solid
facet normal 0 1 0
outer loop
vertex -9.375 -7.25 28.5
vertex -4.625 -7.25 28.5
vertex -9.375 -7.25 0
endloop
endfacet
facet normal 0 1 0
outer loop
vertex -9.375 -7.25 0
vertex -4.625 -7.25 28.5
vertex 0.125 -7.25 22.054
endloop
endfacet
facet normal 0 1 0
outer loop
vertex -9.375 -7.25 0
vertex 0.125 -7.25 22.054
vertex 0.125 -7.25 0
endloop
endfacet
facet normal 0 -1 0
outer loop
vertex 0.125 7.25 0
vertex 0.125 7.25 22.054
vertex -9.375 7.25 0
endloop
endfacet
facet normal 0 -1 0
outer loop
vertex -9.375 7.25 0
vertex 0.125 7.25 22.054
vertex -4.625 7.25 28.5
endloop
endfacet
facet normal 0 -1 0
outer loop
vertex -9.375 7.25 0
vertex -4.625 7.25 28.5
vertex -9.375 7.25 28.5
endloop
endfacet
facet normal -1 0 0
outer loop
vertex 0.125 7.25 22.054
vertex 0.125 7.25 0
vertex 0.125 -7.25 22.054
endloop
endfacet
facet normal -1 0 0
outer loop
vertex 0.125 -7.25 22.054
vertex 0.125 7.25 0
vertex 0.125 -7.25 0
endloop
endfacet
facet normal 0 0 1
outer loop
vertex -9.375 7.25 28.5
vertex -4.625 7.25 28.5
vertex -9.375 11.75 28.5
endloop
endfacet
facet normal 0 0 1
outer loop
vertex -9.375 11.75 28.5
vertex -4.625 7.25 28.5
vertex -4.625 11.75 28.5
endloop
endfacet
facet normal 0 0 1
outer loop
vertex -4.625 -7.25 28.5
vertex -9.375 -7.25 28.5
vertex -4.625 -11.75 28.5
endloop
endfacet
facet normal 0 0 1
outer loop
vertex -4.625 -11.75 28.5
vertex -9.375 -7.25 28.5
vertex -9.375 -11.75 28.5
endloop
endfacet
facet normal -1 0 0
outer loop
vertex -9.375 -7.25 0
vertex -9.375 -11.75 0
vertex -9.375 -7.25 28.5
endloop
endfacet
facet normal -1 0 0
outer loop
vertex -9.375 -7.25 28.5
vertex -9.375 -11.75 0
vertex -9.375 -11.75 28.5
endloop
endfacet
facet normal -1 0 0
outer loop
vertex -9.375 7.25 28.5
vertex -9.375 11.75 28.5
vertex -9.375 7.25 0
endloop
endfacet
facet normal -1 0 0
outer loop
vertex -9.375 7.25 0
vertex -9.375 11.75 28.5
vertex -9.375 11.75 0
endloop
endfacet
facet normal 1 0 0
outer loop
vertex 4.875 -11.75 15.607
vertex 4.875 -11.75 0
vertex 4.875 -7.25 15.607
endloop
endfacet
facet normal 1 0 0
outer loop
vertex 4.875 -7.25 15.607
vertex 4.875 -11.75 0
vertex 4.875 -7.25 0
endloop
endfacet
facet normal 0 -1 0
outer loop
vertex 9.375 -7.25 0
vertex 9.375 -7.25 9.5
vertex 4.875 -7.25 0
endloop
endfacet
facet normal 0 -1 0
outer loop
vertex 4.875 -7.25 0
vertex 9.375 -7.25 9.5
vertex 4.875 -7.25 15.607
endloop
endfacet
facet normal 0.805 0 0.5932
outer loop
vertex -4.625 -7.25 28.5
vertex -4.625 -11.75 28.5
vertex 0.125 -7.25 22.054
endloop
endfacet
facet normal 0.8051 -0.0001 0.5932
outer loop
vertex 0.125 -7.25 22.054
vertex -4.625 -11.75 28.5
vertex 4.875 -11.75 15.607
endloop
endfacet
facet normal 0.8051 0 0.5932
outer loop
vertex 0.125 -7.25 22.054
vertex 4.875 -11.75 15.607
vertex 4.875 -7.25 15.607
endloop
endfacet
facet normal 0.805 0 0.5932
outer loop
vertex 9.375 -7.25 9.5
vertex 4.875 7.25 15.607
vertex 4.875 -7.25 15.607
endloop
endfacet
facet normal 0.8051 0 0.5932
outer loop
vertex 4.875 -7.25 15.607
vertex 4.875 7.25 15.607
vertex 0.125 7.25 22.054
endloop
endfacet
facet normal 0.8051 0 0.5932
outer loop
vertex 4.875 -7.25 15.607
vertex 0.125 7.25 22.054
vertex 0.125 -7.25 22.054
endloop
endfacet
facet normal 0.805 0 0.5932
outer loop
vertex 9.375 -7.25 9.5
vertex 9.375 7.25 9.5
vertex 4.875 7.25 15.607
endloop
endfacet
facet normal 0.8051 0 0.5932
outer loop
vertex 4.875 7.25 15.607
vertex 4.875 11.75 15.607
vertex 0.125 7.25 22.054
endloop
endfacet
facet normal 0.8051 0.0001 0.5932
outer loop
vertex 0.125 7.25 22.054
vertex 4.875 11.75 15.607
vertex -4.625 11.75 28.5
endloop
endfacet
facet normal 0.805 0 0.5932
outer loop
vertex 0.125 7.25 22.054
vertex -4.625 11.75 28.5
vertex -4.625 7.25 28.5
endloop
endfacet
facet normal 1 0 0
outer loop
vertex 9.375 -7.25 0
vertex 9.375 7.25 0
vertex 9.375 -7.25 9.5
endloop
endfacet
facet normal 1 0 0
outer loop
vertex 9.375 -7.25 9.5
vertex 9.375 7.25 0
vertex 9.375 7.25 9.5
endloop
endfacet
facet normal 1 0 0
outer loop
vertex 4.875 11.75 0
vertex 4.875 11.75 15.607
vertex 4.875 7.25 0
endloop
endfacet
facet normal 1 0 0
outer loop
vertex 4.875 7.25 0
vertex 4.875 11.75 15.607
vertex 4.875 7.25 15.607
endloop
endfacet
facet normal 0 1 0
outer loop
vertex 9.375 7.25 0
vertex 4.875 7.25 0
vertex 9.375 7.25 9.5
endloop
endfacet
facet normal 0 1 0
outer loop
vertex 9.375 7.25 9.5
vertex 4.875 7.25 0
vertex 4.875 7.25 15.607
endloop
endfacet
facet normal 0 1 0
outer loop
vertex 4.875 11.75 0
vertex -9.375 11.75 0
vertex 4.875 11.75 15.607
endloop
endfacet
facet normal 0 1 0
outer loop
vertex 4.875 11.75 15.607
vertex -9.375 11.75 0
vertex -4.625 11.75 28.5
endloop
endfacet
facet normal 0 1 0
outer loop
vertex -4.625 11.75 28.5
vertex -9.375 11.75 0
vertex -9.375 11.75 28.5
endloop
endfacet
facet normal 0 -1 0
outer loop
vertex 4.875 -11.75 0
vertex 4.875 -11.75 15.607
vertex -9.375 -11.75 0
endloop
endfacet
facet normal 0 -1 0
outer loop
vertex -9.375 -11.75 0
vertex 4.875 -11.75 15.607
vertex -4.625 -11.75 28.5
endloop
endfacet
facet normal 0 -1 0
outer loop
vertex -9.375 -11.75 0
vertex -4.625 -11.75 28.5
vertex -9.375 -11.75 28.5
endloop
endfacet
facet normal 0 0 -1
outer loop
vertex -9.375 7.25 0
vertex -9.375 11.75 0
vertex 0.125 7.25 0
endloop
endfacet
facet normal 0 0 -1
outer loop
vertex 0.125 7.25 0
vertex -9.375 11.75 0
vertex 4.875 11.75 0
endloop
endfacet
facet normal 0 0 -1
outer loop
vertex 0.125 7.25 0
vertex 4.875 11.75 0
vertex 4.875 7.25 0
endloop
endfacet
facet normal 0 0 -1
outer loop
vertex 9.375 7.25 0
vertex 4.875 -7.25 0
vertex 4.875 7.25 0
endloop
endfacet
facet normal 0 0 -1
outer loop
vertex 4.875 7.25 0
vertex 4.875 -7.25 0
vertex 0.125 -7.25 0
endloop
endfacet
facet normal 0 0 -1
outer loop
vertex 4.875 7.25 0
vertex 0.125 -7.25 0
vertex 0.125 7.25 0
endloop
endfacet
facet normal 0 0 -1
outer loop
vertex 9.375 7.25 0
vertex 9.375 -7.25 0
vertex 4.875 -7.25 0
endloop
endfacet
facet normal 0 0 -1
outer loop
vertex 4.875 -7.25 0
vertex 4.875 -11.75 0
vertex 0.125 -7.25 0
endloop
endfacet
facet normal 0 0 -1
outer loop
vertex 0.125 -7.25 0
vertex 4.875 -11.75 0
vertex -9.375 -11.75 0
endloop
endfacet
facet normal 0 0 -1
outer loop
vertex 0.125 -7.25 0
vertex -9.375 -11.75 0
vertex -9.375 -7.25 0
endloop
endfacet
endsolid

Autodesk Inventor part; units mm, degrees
ref_plane "YZ Plane" through (0, 0, 0) normal (1, 0, 0) x (0, 1, 0)
ref_plane "XZ Plane" through (0, 0, 0) normal (0, 1, 0) x (-1, 0, 0)
ref_plane "XY Plane" through (0, 0, 0) normal (0, 0, 1) x (1, 0, 0)
sketch "Sketch1" plane through (0, 0, 0) normal (0, 0, 1) x (1, 0, 0)
  line L0 (-9.375, -11.75) -> (9.375, -11.75)
  line L1 (9.375, -11.75) -> (9.375, 11.75)
  line L2 (9.375, 11.75) -> (-9.375, 11.75)
  line L3 (-9.375, 11.75) -> (-9.375, -11.75)
  line L4 (-9.375, -11.75) -> (9.375, 11.75) construction
  line L5 (9.375, -11.75) -> (-9.375, 11.75) construction
  point P0 (0, 0)
  dimension "d0" = 18.75
  dimension "d1" = 23.5
extrude "Extrusion1" add sketch "Sketch1" along normal blind 28.5
sketch "Sketch2" plane through (-9.375, 11.75, 0) normal (0, 1, 0) x (1, 0, 0)
  line L0 (0, -28.5) -> (18.75, -28.5) projected
  line L1 (0, -28.5) -> (4.75, -28.5)
  line L2 (18.75, 0) -> (18.75, -9.5)
  line L3 (18.75, 0) -> (18.75, -28.5) projected
  line L4 (18.75, -9.5) -> (4.75, -28.5)
  line L5 (18.75, -28.5) -> (4.75, -28.5)
  line L6 (18.75, -28.5) -> (18.75, -9.5)
  point P0 (9.375, 0)
  dimension "d4" = 4.75
  dimension "d5" = 9.5
extrude "Extrusion2" cut sketch "Sketch2" against normal blind 28.5
sketch "Sketch7" plane through (-9.375, 11.75, 0) normal (0, 1, 0) x (1, 0, 0)
  line L0 (18.75, 0) -> (18.75, -9.5) projected
  line L1 (18.75, -9.5) -> (18.75, 0)
  line L2 (18.75, 0) -> (14.25, 0)
  line L3 (0, 0) -> (18.75, 0) projected
  line L4 (14.25, 0) -> (14.25, -15.6071)
  line L5 (18.75, -9.5) -> (4.75, -28.5) projected
  line L6 (18.75, -9.5) -> (14.25, -15.6071)
  point P0 (9.375, 0)
  dimension "d27" = 4.5
extrude "Extrusion7" cut sketch "Sketch7" against normal blind 4.5
sketch "Sketch8" plane through (-9.375, -11.75, 0) normal (0, -1, 0) x (1, 0, 0)
  line L0 (18.75, 0) -> (18.75, 9.5) projected
  line L1 (18.75, 0) -> (14.25, 0)
  line L2 (0, 0) -> (18.75, 0) projected
  line L3 (18.75, 9.5) -> (14.25, 15.6071) projected
  line L4 (14.25, 0) -> (14.25, 15.6071)
  line L5 (14.25, 15.6071) -> (18.75, 9.5)
  line L6 (18.75, 0) -> (18.75, 9.5)
  point P0 (9.375, 0)
  dimension "d30" = 4.5
extrude "Extrusion8" cut sketch "Sketch8" against normal blind 4.5
sketch "Sketch9" plane through (-9.375, -11.75, 0) normal (-1, 0, 0) x (0, 0, 1)
  line L0 (15.6071, 19) -> (0, 19) projected
  line L1 (28.5, 4.5) -> (0, 4.5)
  line L2 (0, 4.5) -> (0, 19)
  line L3 (0, 19) -> (28.5, 19)
  line L4 (28.5, 19) -> (28.5, 4.5)
  line L5 (28.5, 23.5) -> (28.5, 0) projected
  line L6 (0, 0) -> (28.5, 0) projected
  point P0 (0, 11.75)
  dimension "d35" = 0
  dimension "d36" = 4.5
extrude "Extrusion9" cut sketch "Sketch9" against normal blind 9.5
